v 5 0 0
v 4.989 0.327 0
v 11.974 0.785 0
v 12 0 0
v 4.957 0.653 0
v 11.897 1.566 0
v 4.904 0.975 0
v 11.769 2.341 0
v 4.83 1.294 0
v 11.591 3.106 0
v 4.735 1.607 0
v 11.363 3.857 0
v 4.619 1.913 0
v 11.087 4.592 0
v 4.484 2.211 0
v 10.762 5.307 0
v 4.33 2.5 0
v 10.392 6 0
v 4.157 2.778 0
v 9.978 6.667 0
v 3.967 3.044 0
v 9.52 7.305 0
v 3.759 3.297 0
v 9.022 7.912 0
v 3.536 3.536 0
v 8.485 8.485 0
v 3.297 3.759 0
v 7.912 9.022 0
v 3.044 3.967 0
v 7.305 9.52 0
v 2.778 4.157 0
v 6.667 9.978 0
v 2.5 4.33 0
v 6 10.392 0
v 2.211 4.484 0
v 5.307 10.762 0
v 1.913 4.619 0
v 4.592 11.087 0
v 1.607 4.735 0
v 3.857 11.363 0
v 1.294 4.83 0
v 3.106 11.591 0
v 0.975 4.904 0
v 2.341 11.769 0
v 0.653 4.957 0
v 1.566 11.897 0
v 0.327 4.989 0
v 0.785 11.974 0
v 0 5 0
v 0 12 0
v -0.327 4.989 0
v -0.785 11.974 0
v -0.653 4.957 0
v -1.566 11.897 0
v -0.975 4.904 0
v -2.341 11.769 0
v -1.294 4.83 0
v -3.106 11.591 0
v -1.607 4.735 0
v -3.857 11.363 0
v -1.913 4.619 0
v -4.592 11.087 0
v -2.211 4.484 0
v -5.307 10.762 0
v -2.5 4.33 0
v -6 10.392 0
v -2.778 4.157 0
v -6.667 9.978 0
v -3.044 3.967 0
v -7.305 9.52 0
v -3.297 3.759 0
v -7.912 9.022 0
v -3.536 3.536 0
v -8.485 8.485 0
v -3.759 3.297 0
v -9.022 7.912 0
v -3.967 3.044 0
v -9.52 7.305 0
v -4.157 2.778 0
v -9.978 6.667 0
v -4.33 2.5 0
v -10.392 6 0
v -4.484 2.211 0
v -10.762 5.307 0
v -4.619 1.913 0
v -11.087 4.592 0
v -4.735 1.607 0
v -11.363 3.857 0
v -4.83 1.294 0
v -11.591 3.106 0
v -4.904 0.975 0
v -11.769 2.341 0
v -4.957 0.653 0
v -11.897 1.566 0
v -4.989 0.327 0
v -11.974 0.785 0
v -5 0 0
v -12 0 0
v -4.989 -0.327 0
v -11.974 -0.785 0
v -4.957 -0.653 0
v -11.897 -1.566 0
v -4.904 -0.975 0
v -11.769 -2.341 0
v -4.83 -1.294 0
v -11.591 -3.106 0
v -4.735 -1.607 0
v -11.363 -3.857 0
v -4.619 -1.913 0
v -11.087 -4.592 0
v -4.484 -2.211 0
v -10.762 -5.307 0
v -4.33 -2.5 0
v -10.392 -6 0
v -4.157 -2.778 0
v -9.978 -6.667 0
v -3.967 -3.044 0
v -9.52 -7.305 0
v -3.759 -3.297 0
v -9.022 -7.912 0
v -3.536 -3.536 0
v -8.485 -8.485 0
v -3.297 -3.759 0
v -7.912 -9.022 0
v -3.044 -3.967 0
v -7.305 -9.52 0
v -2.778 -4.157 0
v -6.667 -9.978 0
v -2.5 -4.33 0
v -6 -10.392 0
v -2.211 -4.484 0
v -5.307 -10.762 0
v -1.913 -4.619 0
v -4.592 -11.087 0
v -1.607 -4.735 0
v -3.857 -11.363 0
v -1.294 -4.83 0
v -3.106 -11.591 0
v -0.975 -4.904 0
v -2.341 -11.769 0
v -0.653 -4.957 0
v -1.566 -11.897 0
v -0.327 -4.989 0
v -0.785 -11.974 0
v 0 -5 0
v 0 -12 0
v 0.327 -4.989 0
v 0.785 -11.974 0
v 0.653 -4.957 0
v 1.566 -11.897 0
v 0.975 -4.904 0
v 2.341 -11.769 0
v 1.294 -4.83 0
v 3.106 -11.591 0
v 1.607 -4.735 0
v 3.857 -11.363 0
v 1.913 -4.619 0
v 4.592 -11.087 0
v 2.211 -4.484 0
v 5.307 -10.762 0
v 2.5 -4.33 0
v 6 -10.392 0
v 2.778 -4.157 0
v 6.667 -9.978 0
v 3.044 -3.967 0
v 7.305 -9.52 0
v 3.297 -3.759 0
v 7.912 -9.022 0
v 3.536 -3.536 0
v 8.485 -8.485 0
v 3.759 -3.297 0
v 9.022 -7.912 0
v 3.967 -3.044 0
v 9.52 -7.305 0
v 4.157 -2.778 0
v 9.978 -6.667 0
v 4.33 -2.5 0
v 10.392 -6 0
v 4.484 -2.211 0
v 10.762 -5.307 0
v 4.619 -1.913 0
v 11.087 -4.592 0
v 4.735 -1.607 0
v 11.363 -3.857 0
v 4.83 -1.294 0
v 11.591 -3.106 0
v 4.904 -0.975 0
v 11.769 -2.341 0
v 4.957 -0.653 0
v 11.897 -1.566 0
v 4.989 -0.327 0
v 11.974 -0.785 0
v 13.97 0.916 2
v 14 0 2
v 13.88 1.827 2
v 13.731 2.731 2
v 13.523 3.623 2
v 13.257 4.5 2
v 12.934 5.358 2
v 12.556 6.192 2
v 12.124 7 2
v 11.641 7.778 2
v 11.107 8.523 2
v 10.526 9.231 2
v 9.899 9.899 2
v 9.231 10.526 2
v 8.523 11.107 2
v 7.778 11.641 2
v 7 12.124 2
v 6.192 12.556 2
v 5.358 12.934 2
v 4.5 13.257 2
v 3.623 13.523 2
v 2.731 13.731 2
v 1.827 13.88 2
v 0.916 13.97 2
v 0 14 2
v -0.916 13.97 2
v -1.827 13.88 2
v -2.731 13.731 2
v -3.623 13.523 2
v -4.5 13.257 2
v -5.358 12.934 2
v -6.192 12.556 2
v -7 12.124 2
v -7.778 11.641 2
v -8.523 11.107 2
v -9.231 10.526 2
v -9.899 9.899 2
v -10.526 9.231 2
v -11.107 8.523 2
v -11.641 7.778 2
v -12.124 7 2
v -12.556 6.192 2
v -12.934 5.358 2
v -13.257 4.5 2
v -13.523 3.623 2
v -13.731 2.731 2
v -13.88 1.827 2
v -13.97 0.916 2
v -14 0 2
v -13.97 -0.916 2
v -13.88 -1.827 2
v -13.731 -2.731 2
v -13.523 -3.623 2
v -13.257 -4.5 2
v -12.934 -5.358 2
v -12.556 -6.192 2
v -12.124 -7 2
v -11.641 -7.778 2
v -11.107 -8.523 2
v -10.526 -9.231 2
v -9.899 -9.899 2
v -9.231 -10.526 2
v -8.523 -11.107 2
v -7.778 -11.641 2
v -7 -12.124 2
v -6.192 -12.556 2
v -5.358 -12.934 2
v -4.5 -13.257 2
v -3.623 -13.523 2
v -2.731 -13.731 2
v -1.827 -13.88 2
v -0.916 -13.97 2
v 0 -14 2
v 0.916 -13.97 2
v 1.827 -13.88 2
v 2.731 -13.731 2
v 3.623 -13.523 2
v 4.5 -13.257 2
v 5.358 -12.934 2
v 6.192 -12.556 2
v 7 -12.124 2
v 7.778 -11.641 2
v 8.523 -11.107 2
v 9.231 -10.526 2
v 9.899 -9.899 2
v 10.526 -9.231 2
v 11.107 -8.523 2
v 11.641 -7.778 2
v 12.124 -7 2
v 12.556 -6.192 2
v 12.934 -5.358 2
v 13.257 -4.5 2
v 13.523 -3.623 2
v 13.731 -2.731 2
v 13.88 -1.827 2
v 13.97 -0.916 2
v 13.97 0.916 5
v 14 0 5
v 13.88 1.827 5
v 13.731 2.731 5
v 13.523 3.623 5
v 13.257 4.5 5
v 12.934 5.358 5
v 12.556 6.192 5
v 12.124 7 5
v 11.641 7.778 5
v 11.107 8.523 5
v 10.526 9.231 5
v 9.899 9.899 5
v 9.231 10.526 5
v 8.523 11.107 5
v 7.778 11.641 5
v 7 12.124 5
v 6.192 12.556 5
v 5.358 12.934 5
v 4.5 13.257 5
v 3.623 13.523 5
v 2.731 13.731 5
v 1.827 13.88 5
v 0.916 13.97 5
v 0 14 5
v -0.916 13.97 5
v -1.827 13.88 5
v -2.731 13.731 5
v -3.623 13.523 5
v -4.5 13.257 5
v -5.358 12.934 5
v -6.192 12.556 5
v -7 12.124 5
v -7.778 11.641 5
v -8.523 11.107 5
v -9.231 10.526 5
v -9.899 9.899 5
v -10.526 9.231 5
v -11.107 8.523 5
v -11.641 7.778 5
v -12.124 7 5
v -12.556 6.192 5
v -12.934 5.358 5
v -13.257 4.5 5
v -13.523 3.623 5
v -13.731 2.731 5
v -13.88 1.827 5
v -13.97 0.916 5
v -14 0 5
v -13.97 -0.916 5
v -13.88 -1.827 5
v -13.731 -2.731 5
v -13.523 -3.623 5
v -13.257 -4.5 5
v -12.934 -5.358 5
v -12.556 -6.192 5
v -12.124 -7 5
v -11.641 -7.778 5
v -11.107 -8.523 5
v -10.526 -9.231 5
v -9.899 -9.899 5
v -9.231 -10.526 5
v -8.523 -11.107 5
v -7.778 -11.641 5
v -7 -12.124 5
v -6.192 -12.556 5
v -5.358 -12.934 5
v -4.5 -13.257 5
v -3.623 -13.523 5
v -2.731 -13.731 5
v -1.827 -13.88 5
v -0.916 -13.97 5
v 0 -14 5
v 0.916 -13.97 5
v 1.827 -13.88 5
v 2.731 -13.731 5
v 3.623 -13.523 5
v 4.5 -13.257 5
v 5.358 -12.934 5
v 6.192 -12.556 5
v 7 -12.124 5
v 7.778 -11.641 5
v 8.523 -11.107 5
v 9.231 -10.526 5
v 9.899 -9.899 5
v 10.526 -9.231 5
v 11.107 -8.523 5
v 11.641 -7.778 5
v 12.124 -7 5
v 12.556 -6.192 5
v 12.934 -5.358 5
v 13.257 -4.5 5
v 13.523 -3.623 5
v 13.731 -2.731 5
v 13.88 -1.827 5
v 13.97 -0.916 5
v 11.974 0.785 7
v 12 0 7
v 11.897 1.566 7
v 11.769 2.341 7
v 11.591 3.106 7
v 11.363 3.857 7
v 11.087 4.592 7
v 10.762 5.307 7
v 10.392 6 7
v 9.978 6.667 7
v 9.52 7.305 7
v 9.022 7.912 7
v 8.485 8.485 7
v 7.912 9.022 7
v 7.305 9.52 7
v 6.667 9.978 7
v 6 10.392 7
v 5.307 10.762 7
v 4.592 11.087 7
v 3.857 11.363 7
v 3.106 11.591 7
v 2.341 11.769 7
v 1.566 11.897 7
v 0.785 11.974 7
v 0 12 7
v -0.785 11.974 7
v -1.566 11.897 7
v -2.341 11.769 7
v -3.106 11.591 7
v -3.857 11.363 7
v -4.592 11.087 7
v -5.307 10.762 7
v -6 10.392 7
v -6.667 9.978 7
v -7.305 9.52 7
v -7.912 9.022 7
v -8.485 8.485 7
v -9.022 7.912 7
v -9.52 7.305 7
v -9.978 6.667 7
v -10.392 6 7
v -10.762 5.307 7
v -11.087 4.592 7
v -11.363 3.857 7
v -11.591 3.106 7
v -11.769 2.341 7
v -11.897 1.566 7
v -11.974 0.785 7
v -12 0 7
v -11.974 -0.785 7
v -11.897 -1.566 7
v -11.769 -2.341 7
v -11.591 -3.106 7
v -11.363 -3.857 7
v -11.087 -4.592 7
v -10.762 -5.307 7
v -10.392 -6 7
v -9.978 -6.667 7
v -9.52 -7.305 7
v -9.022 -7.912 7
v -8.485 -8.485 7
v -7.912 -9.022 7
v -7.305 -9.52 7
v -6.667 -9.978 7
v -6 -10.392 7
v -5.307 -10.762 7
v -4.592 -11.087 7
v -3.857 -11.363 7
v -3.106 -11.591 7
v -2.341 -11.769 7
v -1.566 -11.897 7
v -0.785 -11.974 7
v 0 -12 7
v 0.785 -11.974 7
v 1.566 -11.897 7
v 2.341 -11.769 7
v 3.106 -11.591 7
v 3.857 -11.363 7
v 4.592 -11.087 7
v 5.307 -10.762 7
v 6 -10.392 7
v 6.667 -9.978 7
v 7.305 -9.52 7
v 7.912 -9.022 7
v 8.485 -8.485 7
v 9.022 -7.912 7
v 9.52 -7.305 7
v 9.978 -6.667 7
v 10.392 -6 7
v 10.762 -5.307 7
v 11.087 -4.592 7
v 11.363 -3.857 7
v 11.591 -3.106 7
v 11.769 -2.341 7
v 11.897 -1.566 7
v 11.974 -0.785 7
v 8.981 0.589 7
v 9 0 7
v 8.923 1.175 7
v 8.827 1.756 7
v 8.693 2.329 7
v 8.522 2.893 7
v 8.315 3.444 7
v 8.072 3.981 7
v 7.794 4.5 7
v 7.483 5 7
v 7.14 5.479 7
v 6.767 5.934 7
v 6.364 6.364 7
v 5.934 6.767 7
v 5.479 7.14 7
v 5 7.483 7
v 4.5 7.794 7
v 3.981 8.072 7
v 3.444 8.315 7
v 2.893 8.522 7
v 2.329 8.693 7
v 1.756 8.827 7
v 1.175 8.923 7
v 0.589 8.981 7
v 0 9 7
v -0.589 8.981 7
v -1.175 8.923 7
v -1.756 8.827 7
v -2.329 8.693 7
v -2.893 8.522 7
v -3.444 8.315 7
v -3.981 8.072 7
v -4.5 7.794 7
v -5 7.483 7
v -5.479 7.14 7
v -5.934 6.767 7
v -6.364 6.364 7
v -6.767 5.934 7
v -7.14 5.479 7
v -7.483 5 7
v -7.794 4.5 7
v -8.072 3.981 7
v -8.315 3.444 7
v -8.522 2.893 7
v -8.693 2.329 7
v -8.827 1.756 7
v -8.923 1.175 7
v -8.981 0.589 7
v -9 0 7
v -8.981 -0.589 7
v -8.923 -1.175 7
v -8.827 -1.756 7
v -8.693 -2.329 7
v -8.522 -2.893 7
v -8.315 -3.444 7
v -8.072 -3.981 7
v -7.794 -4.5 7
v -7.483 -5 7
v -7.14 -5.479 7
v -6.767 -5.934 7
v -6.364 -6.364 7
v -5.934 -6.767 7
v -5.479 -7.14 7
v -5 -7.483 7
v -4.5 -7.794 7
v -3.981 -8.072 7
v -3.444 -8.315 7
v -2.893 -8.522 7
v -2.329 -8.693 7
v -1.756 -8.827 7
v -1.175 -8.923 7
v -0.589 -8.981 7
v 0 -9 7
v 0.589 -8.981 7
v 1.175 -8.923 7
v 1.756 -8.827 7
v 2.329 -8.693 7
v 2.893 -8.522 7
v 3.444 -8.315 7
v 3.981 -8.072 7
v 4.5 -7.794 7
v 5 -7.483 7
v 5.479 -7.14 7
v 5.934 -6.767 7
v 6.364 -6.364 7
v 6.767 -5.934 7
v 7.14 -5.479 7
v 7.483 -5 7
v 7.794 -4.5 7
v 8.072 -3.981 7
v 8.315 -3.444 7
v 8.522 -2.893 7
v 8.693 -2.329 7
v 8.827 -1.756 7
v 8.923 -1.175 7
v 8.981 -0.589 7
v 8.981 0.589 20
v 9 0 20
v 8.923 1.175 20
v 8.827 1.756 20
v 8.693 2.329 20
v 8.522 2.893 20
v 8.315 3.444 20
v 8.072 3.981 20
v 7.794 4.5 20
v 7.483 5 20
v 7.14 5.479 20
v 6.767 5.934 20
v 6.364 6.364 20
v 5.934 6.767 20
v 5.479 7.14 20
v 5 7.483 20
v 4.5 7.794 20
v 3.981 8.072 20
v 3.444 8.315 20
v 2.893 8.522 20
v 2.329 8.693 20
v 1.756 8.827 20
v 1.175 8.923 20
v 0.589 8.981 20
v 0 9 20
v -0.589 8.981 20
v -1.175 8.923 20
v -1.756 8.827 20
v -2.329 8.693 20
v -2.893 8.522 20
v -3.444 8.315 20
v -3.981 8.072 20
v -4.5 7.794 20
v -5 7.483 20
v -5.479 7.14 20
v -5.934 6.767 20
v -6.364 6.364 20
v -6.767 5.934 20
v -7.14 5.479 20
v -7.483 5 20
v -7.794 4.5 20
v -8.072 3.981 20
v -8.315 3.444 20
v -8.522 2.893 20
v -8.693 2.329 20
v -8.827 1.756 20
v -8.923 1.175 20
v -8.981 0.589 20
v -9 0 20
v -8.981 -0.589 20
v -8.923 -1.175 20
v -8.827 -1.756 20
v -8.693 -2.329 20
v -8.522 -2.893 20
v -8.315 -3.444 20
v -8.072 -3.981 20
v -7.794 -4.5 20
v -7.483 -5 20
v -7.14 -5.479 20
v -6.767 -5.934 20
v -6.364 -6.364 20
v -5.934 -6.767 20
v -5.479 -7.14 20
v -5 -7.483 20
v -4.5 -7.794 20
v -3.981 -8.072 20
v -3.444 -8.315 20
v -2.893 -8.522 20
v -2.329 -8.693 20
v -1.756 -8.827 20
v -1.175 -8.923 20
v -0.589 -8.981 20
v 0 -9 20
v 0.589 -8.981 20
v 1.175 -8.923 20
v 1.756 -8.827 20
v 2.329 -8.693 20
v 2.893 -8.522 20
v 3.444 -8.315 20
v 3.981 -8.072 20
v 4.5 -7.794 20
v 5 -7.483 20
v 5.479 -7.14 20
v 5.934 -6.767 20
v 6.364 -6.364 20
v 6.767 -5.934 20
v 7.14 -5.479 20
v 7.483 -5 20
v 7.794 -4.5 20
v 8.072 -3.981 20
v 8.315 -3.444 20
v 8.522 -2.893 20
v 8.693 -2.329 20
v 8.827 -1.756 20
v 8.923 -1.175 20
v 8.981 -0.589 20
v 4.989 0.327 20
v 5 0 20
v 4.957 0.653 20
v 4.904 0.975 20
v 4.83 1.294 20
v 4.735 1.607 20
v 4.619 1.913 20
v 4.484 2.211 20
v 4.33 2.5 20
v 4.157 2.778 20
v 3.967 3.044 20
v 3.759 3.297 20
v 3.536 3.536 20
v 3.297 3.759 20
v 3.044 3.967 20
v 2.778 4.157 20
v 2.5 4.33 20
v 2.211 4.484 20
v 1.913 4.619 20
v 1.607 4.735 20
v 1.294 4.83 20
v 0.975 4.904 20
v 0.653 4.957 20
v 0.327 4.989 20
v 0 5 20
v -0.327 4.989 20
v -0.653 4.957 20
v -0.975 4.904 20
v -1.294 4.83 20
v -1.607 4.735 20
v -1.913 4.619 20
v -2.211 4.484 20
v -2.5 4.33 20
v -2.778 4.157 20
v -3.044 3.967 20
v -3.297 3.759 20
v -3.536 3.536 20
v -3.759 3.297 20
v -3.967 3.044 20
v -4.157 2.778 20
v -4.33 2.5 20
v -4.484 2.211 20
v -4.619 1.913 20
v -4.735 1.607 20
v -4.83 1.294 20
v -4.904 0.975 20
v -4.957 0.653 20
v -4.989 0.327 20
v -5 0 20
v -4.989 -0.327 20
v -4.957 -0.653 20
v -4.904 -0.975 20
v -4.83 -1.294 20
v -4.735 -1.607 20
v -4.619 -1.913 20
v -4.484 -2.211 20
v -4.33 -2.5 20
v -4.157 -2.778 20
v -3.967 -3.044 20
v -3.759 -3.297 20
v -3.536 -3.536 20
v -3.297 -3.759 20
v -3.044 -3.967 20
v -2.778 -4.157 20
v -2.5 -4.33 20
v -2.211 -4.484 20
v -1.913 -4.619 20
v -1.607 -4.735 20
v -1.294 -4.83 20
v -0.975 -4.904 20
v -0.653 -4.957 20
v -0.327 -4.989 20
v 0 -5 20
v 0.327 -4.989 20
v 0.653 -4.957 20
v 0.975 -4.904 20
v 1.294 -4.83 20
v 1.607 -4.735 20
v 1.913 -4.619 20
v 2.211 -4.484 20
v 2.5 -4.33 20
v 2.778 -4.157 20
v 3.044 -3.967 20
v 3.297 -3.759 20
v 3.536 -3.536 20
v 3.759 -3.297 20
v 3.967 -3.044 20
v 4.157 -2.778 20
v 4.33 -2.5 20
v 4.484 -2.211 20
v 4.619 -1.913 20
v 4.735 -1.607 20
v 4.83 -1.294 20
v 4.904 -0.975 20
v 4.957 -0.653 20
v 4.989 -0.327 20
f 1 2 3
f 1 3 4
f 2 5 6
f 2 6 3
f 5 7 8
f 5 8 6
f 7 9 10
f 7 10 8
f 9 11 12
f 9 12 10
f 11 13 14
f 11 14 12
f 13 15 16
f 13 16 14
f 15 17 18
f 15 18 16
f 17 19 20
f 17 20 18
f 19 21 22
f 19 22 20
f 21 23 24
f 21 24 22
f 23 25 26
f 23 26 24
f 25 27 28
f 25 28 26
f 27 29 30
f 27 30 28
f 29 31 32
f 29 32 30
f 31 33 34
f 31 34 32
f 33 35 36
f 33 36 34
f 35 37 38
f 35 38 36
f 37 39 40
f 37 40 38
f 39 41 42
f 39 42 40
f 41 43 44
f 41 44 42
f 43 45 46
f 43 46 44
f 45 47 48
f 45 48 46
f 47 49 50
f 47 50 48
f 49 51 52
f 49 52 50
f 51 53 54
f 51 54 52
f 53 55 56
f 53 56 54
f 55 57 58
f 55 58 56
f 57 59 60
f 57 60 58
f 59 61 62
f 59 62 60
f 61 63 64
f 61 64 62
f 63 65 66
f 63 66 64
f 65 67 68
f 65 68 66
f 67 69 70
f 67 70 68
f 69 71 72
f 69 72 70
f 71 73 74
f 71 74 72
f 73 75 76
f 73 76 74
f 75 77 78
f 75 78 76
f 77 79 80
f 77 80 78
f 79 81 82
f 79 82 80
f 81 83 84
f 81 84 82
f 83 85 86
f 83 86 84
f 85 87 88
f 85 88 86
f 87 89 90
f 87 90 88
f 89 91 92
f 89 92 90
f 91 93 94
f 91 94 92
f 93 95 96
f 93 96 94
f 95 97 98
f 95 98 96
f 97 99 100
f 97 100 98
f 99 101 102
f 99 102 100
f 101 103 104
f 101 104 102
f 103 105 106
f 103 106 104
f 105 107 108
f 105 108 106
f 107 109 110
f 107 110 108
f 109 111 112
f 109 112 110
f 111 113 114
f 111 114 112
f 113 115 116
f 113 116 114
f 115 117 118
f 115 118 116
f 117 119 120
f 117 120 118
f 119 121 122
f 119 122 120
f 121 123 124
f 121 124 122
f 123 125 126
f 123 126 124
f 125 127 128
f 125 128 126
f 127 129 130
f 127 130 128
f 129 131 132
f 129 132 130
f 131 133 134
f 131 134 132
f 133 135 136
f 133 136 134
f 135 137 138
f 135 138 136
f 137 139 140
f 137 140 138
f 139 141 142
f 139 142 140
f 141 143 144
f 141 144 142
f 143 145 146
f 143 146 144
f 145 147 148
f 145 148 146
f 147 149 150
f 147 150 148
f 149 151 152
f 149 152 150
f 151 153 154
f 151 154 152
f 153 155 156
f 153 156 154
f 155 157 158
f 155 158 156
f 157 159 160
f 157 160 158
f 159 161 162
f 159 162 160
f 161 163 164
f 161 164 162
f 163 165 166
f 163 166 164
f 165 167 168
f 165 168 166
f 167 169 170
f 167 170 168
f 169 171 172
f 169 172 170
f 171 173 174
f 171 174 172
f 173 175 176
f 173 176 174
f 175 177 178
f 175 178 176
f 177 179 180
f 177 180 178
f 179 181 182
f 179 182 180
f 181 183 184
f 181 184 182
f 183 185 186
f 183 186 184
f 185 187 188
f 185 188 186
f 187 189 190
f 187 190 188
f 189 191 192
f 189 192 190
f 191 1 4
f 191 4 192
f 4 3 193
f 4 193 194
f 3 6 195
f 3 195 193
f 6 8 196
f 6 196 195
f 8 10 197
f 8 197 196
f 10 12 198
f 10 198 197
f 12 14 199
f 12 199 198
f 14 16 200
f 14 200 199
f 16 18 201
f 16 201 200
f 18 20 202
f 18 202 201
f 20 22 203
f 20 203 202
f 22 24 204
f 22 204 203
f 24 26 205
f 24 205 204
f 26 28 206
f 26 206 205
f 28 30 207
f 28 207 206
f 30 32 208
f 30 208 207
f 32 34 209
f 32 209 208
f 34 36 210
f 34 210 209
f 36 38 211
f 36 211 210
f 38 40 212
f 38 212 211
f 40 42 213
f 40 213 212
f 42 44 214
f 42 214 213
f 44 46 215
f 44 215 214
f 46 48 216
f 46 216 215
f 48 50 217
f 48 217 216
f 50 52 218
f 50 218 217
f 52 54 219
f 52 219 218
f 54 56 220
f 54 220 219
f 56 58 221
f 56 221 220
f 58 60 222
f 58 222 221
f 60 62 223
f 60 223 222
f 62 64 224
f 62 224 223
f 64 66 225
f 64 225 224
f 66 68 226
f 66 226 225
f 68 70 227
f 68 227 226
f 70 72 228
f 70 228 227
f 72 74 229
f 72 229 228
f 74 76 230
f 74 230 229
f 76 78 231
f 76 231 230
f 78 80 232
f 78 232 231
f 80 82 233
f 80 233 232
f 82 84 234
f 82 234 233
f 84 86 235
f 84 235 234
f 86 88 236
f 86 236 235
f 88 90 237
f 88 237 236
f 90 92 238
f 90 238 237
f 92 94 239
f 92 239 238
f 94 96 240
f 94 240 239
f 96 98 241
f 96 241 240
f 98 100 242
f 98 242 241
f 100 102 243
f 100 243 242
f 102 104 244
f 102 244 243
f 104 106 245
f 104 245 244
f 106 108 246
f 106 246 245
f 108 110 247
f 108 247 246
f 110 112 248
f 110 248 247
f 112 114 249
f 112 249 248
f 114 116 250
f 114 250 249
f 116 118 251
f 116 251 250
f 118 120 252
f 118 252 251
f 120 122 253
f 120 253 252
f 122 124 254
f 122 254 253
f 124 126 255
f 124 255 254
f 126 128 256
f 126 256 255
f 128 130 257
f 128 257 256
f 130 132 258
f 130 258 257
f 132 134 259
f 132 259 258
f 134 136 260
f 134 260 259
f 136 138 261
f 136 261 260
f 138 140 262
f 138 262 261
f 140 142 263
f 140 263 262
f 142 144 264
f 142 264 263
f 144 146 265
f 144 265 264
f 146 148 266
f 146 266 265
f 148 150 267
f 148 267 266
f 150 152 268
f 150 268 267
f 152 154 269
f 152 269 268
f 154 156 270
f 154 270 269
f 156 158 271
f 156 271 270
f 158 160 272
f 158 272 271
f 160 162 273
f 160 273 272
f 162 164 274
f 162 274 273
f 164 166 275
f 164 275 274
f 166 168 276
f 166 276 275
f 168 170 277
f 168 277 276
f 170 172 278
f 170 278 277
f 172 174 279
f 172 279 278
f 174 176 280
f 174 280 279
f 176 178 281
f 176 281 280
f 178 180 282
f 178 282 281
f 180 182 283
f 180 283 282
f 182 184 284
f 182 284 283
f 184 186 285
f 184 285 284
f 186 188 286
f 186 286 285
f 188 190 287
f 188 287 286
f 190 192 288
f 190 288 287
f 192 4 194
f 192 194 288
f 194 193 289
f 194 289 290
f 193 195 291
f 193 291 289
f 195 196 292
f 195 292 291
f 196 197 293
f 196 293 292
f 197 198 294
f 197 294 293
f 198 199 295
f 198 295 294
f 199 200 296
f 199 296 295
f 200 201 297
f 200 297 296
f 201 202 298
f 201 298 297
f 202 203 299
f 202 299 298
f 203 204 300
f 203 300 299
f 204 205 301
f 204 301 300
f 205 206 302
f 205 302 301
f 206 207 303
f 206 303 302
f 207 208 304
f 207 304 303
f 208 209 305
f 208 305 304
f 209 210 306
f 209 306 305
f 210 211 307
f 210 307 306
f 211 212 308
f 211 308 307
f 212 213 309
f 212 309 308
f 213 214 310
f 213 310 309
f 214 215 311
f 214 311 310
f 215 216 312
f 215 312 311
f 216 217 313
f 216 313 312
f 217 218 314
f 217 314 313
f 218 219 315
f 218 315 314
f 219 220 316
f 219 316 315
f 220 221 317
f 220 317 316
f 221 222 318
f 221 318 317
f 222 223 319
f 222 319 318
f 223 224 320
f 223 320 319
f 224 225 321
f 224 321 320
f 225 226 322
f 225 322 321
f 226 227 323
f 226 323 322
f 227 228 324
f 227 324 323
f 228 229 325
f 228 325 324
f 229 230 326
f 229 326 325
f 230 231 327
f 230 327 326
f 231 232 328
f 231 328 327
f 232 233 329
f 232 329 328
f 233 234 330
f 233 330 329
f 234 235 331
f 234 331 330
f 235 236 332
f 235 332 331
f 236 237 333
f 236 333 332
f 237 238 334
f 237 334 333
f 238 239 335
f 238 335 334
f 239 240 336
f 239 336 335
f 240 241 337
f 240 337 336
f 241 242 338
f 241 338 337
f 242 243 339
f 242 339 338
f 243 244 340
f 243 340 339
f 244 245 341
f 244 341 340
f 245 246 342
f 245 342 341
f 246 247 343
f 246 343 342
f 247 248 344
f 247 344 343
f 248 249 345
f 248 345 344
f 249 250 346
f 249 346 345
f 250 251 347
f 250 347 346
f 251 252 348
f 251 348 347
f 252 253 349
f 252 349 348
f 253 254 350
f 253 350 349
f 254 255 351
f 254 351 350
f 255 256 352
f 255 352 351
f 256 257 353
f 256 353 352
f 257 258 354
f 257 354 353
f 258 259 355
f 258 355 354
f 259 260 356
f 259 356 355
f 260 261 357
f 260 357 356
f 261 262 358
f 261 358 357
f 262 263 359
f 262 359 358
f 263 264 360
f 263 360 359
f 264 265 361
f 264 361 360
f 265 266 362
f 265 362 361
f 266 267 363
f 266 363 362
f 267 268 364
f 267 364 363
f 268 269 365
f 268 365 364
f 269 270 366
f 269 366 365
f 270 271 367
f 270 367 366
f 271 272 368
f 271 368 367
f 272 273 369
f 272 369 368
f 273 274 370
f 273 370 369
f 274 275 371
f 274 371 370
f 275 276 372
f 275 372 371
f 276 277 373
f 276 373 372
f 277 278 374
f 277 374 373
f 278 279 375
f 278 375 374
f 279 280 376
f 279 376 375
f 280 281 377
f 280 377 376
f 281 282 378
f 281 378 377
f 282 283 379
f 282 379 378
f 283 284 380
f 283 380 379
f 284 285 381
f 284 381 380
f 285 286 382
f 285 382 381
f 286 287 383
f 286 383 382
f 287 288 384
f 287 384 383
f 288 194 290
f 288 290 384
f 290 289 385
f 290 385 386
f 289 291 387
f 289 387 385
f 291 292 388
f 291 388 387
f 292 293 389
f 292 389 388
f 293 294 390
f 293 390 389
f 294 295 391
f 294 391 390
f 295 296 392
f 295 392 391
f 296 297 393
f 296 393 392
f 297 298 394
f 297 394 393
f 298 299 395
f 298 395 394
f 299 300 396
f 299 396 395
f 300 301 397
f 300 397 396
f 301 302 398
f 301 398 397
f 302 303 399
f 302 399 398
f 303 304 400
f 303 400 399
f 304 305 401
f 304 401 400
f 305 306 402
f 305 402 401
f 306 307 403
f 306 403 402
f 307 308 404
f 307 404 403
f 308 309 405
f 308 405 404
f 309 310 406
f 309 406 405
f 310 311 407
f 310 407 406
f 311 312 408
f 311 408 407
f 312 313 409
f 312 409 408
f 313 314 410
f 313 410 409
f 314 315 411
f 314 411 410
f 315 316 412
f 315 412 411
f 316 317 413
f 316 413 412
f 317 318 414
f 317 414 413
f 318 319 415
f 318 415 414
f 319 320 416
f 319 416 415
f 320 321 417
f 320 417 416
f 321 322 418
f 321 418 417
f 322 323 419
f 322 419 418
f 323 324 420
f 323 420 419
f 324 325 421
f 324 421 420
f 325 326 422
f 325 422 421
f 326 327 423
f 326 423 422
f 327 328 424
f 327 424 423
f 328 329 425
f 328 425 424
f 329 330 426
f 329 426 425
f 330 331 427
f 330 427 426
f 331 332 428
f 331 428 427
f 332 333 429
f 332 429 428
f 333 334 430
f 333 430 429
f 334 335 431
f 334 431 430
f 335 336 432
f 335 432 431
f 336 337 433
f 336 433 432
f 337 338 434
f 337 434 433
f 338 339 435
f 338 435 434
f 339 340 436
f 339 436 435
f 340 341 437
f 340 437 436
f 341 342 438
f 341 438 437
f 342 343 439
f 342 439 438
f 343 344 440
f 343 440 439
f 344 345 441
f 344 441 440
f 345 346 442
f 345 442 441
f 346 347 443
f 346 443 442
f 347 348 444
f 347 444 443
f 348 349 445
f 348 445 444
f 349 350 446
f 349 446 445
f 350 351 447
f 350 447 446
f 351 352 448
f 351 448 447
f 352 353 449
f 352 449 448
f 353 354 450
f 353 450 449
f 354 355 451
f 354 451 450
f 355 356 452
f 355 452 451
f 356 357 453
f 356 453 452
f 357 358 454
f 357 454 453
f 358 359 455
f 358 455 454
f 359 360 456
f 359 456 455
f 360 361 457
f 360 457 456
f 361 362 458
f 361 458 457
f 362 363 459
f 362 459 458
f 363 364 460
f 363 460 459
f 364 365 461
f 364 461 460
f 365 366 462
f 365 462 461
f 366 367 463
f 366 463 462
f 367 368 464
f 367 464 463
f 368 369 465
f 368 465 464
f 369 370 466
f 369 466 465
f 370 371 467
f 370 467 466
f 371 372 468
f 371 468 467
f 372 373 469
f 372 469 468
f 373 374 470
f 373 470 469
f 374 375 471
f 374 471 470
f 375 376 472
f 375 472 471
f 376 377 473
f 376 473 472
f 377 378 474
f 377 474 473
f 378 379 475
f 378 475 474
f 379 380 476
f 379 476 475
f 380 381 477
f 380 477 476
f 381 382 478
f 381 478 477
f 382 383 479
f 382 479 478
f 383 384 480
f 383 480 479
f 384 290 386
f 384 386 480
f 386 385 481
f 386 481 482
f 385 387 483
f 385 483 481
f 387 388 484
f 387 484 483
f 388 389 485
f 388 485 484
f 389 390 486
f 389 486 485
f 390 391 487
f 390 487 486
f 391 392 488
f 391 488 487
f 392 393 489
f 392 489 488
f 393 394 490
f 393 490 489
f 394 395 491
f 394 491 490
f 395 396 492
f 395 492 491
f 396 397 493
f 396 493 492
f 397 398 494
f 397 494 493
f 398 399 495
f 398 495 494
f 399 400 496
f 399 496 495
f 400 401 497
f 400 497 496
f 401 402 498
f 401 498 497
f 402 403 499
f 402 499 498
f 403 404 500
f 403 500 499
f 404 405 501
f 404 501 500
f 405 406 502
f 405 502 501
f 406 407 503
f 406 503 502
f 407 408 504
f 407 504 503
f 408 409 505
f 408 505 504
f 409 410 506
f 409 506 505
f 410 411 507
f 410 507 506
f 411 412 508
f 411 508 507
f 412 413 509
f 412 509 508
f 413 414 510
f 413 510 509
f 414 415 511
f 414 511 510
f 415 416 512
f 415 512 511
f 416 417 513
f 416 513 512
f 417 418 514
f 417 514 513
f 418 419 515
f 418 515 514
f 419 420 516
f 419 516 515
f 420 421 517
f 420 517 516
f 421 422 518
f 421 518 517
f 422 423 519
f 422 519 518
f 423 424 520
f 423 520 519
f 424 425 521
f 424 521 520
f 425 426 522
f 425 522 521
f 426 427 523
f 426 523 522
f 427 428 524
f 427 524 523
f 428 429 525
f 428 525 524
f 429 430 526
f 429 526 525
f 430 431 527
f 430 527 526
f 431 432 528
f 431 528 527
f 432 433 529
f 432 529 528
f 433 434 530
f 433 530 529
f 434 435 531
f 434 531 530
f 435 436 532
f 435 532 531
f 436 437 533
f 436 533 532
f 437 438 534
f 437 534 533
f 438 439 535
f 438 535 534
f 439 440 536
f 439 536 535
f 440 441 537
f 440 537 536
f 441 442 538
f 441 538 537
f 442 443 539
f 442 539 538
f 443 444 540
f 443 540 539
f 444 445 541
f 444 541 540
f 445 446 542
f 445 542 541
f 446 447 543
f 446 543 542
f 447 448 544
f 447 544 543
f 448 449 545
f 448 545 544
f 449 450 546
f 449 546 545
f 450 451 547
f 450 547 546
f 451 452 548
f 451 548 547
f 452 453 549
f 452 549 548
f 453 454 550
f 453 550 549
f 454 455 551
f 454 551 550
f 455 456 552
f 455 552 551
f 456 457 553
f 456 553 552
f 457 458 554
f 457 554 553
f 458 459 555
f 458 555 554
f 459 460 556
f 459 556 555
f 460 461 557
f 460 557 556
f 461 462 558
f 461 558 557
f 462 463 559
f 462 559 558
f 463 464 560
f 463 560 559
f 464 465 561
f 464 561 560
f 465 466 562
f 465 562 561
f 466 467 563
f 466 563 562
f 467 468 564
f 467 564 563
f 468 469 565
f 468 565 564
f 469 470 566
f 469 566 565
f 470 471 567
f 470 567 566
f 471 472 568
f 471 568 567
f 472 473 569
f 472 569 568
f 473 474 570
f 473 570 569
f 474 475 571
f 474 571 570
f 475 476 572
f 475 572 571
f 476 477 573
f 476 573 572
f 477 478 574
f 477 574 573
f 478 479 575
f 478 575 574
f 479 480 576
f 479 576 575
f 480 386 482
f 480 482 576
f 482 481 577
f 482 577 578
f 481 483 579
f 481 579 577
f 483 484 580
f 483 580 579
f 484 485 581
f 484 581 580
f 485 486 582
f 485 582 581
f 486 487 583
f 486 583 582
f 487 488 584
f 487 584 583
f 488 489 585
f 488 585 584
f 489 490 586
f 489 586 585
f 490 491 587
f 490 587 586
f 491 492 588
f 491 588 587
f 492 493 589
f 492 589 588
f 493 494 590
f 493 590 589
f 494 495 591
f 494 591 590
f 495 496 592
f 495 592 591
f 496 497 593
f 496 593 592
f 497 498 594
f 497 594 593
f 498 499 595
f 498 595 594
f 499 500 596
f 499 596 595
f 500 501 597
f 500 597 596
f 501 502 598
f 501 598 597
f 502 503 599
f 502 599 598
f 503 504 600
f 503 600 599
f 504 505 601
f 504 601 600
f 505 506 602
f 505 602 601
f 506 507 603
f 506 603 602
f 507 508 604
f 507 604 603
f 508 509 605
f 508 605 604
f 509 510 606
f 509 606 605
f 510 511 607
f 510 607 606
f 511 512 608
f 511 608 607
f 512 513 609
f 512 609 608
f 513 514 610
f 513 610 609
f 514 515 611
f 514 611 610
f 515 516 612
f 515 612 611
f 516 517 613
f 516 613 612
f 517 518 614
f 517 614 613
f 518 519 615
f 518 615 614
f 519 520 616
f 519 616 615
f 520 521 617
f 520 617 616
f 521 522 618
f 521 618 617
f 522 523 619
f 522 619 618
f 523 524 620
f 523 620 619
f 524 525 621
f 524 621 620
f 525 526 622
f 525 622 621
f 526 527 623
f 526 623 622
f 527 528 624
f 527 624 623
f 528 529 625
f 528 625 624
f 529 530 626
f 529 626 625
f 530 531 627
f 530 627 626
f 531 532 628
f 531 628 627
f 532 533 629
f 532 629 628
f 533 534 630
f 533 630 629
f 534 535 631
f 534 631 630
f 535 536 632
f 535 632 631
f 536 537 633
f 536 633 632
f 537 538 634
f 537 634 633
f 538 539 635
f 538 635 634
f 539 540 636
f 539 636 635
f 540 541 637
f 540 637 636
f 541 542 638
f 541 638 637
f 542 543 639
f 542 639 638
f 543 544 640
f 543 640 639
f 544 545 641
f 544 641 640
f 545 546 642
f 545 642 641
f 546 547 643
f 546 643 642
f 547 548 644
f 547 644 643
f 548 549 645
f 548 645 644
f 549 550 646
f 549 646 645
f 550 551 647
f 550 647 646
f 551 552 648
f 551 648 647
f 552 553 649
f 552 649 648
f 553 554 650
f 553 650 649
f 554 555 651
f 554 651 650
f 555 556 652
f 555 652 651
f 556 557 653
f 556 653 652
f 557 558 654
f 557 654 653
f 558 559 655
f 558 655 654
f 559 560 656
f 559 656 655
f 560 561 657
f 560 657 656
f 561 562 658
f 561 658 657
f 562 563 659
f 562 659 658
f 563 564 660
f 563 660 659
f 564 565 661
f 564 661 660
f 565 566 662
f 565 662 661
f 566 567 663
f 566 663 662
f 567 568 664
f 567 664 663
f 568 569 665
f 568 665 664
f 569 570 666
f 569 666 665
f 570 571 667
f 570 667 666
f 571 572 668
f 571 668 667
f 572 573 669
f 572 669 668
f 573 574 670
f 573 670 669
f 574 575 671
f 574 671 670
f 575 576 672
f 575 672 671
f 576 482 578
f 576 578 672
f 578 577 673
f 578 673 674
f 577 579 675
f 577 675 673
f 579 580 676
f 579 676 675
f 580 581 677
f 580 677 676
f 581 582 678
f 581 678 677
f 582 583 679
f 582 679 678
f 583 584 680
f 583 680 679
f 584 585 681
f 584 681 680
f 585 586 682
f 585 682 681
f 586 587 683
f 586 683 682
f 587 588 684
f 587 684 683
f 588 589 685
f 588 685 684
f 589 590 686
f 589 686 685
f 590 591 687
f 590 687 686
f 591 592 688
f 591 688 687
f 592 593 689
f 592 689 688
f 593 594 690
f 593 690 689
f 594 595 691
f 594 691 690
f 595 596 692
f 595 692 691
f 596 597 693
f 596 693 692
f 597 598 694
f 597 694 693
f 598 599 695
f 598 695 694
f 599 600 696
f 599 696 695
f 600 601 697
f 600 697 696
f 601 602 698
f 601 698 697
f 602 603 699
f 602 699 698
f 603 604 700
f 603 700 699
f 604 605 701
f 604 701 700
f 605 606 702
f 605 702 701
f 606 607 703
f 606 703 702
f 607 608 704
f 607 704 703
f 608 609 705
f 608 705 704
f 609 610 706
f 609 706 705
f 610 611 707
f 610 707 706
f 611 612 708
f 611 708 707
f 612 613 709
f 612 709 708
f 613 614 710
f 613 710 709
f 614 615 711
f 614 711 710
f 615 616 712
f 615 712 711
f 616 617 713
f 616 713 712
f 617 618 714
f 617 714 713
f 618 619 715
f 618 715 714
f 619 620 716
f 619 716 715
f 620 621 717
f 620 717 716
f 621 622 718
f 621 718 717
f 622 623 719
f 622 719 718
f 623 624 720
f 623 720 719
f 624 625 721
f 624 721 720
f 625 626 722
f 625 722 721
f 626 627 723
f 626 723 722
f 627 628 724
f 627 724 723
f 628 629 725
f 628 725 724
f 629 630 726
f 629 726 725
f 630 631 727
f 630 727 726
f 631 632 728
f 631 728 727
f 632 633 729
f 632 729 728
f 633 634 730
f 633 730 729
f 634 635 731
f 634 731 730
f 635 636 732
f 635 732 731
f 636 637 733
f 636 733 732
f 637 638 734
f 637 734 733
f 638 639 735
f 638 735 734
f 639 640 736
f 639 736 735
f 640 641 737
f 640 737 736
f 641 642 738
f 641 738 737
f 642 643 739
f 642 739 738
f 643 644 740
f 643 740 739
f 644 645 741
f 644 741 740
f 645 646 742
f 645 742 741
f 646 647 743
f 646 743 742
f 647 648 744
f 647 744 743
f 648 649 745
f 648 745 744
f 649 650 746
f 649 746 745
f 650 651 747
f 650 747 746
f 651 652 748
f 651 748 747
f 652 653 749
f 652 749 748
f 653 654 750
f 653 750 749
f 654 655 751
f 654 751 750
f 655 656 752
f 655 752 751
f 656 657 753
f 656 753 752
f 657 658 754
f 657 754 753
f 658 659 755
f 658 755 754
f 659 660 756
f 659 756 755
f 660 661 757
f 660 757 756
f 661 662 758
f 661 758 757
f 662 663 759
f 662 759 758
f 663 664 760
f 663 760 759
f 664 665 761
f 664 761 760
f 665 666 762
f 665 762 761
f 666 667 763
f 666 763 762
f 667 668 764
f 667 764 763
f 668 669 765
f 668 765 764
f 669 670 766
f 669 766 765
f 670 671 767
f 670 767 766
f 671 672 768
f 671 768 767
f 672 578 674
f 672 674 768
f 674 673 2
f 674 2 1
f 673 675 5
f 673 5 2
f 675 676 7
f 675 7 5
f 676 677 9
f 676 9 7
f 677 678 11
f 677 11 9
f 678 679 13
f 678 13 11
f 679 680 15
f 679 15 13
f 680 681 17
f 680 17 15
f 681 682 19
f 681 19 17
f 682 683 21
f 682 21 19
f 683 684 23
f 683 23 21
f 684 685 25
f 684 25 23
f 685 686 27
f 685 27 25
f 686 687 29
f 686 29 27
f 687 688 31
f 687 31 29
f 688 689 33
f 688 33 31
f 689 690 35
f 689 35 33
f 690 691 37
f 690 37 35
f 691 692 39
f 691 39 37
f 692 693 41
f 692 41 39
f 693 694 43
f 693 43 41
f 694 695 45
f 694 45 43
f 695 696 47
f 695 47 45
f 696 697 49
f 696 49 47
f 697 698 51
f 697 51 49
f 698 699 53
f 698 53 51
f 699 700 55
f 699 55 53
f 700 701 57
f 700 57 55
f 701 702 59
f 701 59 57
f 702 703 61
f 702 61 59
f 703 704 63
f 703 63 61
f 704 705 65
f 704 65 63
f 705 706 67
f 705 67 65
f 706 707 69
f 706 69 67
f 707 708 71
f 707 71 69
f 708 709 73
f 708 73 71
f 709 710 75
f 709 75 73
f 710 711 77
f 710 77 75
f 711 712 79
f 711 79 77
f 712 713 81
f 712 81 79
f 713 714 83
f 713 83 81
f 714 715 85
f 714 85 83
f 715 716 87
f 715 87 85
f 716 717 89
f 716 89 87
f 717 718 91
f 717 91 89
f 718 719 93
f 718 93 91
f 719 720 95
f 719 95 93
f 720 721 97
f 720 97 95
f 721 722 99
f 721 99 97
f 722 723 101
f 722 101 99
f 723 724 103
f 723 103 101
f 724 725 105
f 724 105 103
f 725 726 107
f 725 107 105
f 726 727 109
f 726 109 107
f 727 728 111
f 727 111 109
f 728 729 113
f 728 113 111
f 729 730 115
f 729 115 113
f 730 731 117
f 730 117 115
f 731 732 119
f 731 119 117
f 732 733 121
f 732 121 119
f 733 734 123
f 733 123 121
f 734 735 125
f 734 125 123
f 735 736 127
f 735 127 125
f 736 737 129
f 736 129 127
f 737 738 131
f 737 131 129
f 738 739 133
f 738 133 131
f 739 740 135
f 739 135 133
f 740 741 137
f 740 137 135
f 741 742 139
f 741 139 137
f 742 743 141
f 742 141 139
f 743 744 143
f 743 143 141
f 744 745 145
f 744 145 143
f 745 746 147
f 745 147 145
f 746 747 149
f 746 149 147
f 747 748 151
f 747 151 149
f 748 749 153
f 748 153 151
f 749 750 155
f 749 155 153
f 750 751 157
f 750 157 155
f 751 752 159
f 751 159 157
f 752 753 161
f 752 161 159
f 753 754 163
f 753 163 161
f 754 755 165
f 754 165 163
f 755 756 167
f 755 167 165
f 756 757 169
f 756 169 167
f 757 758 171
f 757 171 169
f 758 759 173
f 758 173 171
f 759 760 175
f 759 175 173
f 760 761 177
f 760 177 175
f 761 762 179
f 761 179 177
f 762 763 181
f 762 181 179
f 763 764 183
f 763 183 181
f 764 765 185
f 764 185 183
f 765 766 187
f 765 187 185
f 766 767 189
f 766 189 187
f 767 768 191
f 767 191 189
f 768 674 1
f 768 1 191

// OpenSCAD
// Original MechIntel educational model. CC0-1.0. Units: mm.
// Not a standardized or load-rated component.
$fn=96;
// Section points: [radius, height], mm. Edit to change the profile.
section=[[5, 0], [12, 0], [14, 2], [14, 5], [12, 7], [9, 7], [9, 20], [5, 20]];
rotate_extrude($fn=96) polygon(points=section);
